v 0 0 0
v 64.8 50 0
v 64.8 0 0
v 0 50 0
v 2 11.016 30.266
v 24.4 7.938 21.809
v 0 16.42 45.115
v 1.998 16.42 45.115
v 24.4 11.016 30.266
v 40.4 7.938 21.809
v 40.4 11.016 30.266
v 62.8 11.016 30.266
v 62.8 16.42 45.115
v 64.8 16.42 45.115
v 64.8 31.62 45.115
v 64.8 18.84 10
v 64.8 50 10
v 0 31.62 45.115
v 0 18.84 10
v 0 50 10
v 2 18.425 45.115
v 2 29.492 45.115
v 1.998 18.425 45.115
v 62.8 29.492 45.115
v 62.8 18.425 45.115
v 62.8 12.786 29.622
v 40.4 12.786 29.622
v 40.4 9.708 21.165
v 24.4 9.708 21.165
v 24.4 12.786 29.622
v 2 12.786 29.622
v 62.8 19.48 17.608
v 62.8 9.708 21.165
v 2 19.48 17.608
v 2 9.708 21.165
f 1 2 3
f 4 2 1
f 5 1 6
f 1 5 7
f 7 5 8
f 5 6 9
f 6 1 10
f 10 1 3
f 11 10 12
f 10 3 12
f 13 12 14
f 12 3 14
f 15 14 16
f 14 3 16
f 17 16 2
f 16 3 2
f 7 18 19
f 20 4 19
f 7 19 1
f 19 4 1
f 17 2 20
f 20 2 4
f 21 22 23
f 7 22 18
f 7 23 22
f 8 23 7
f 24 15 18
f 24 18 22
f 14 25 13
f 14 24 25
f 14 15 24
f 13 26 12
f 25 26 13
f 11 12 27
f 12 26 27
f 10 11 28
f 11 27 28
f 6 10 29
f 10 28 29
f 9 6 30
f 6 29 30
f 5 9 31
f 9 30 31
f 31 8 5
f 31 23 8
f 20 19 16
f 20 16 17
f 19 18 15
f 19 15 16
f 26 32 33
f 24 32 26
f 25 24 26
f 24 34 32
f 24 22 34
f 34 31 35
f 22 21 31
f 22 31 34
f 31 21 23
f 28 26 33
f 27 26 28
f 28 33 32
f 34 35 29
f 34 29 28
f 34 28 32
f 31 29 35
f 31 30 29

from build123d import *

# Parameters (mm, degrees)
SKETCH_W        = 64.8
SKETCH_H        = 50
PAD_DEPTH       = 50
POCKET_DEPTH    = 64.801
POCKET001_DEPTH = 64.801
POCKET002_DEPTH = 64.801
SKETCH004_W     = 60.8
SKETCH004_H     = 10.4
POCKET003_DEPTH = 30
POCKET004_DEPTH = 18.9853350022
POCKET005_DEPTH = 64.801


with BuildPart() as part:
    # Sketch → Pad (new body)
    with BuildSketch(Plane.XY):
        with Locations((32.4, 25)):
            Rectangle(SKETCH_W, SKETCH_H)
    extrude(amount=PAD_DEPTH)

    # Sketch001 → Pocket (cut, through all)
    with BuildSketch(Plane.YZ.offset(64.8)):
        Polygon((0, 0), (0, 50), (18.1985117133, 50), align=None)
    extrude(amount=-POCKET_DEPTH, mode=Mode.SUBTRACT)

    # Sketch002 → Pocket001 (cut, through all)
    with BuildSketch(Plane.YZ.offset(64.8)):
        Polygon((33.3985117133, 50), (18.8397023427, 10), (50, 10), (50, 50), align=None)
    extrude(amount=-POCKET001_DEPTH, mode=Mode.SUBTRACT)

    # Sketch003 → Pocket002 (cut, through all)
    with BuildSketch(Plane.YZ.offset(64.8)):
        Polygon((18.1985117133, 50), (31.620449481, 45.1148141664), (33.3985117133, 50), align=None)
    extrude(amount=-POCKET002_DEPTH, mode=Mode.SUBTRACT)

    # Sketch004 → Pocket003 (cut)
    with BuildSketch(Plane(origin=(0, 18.1985117133, 50), x_dir=(1, 0, 0), z_dir=(0, 0.3420201433, 0.9396926208))):
        with Locations((32.4, 7.0833278359)):
            Rectangle(SKETCH004_W, SKETCH004_H)
    extrude(amount=-POCKET003_DEPTH, mode=Mode.SUBTRACT)

    # Sketch005 → Pocket004 (cut, through all)
    with BuildSketch(Plane(origin=(0, 1.76974927, -0.6441360564), x_dir=(-1, 0, 0), z_dir=(0, 0.9396926208, -0.3420201433))):
        Polygon((-62.8, 32.2088886238), (-40.4, 32.2088886238), (-40.4, 23.2088886238), (-24.4, 23.2088886238), (-24.4, 32.2088886238), (-2, 32.2088886238), (-1.996389, 63.8506663486), (-62.8, 53.2088886238), align=None)
    extrude(amount=-POCKET004_DEPTH, mode=Mode.SUBTRACT)

    # Sketch006 → Pocket005 (cut, through all)
    with BuildSketch(Plane.YZ.offset(64.8)):
        Polygon((31.620449481, 45.1148141664), (16.420449481, 45.1148141664), (18.1985117133, 50), align=None)
    extrude(amount=-POCKET005_DEPTH, mode=Mode.SUBTRACT)


solid = part.part
